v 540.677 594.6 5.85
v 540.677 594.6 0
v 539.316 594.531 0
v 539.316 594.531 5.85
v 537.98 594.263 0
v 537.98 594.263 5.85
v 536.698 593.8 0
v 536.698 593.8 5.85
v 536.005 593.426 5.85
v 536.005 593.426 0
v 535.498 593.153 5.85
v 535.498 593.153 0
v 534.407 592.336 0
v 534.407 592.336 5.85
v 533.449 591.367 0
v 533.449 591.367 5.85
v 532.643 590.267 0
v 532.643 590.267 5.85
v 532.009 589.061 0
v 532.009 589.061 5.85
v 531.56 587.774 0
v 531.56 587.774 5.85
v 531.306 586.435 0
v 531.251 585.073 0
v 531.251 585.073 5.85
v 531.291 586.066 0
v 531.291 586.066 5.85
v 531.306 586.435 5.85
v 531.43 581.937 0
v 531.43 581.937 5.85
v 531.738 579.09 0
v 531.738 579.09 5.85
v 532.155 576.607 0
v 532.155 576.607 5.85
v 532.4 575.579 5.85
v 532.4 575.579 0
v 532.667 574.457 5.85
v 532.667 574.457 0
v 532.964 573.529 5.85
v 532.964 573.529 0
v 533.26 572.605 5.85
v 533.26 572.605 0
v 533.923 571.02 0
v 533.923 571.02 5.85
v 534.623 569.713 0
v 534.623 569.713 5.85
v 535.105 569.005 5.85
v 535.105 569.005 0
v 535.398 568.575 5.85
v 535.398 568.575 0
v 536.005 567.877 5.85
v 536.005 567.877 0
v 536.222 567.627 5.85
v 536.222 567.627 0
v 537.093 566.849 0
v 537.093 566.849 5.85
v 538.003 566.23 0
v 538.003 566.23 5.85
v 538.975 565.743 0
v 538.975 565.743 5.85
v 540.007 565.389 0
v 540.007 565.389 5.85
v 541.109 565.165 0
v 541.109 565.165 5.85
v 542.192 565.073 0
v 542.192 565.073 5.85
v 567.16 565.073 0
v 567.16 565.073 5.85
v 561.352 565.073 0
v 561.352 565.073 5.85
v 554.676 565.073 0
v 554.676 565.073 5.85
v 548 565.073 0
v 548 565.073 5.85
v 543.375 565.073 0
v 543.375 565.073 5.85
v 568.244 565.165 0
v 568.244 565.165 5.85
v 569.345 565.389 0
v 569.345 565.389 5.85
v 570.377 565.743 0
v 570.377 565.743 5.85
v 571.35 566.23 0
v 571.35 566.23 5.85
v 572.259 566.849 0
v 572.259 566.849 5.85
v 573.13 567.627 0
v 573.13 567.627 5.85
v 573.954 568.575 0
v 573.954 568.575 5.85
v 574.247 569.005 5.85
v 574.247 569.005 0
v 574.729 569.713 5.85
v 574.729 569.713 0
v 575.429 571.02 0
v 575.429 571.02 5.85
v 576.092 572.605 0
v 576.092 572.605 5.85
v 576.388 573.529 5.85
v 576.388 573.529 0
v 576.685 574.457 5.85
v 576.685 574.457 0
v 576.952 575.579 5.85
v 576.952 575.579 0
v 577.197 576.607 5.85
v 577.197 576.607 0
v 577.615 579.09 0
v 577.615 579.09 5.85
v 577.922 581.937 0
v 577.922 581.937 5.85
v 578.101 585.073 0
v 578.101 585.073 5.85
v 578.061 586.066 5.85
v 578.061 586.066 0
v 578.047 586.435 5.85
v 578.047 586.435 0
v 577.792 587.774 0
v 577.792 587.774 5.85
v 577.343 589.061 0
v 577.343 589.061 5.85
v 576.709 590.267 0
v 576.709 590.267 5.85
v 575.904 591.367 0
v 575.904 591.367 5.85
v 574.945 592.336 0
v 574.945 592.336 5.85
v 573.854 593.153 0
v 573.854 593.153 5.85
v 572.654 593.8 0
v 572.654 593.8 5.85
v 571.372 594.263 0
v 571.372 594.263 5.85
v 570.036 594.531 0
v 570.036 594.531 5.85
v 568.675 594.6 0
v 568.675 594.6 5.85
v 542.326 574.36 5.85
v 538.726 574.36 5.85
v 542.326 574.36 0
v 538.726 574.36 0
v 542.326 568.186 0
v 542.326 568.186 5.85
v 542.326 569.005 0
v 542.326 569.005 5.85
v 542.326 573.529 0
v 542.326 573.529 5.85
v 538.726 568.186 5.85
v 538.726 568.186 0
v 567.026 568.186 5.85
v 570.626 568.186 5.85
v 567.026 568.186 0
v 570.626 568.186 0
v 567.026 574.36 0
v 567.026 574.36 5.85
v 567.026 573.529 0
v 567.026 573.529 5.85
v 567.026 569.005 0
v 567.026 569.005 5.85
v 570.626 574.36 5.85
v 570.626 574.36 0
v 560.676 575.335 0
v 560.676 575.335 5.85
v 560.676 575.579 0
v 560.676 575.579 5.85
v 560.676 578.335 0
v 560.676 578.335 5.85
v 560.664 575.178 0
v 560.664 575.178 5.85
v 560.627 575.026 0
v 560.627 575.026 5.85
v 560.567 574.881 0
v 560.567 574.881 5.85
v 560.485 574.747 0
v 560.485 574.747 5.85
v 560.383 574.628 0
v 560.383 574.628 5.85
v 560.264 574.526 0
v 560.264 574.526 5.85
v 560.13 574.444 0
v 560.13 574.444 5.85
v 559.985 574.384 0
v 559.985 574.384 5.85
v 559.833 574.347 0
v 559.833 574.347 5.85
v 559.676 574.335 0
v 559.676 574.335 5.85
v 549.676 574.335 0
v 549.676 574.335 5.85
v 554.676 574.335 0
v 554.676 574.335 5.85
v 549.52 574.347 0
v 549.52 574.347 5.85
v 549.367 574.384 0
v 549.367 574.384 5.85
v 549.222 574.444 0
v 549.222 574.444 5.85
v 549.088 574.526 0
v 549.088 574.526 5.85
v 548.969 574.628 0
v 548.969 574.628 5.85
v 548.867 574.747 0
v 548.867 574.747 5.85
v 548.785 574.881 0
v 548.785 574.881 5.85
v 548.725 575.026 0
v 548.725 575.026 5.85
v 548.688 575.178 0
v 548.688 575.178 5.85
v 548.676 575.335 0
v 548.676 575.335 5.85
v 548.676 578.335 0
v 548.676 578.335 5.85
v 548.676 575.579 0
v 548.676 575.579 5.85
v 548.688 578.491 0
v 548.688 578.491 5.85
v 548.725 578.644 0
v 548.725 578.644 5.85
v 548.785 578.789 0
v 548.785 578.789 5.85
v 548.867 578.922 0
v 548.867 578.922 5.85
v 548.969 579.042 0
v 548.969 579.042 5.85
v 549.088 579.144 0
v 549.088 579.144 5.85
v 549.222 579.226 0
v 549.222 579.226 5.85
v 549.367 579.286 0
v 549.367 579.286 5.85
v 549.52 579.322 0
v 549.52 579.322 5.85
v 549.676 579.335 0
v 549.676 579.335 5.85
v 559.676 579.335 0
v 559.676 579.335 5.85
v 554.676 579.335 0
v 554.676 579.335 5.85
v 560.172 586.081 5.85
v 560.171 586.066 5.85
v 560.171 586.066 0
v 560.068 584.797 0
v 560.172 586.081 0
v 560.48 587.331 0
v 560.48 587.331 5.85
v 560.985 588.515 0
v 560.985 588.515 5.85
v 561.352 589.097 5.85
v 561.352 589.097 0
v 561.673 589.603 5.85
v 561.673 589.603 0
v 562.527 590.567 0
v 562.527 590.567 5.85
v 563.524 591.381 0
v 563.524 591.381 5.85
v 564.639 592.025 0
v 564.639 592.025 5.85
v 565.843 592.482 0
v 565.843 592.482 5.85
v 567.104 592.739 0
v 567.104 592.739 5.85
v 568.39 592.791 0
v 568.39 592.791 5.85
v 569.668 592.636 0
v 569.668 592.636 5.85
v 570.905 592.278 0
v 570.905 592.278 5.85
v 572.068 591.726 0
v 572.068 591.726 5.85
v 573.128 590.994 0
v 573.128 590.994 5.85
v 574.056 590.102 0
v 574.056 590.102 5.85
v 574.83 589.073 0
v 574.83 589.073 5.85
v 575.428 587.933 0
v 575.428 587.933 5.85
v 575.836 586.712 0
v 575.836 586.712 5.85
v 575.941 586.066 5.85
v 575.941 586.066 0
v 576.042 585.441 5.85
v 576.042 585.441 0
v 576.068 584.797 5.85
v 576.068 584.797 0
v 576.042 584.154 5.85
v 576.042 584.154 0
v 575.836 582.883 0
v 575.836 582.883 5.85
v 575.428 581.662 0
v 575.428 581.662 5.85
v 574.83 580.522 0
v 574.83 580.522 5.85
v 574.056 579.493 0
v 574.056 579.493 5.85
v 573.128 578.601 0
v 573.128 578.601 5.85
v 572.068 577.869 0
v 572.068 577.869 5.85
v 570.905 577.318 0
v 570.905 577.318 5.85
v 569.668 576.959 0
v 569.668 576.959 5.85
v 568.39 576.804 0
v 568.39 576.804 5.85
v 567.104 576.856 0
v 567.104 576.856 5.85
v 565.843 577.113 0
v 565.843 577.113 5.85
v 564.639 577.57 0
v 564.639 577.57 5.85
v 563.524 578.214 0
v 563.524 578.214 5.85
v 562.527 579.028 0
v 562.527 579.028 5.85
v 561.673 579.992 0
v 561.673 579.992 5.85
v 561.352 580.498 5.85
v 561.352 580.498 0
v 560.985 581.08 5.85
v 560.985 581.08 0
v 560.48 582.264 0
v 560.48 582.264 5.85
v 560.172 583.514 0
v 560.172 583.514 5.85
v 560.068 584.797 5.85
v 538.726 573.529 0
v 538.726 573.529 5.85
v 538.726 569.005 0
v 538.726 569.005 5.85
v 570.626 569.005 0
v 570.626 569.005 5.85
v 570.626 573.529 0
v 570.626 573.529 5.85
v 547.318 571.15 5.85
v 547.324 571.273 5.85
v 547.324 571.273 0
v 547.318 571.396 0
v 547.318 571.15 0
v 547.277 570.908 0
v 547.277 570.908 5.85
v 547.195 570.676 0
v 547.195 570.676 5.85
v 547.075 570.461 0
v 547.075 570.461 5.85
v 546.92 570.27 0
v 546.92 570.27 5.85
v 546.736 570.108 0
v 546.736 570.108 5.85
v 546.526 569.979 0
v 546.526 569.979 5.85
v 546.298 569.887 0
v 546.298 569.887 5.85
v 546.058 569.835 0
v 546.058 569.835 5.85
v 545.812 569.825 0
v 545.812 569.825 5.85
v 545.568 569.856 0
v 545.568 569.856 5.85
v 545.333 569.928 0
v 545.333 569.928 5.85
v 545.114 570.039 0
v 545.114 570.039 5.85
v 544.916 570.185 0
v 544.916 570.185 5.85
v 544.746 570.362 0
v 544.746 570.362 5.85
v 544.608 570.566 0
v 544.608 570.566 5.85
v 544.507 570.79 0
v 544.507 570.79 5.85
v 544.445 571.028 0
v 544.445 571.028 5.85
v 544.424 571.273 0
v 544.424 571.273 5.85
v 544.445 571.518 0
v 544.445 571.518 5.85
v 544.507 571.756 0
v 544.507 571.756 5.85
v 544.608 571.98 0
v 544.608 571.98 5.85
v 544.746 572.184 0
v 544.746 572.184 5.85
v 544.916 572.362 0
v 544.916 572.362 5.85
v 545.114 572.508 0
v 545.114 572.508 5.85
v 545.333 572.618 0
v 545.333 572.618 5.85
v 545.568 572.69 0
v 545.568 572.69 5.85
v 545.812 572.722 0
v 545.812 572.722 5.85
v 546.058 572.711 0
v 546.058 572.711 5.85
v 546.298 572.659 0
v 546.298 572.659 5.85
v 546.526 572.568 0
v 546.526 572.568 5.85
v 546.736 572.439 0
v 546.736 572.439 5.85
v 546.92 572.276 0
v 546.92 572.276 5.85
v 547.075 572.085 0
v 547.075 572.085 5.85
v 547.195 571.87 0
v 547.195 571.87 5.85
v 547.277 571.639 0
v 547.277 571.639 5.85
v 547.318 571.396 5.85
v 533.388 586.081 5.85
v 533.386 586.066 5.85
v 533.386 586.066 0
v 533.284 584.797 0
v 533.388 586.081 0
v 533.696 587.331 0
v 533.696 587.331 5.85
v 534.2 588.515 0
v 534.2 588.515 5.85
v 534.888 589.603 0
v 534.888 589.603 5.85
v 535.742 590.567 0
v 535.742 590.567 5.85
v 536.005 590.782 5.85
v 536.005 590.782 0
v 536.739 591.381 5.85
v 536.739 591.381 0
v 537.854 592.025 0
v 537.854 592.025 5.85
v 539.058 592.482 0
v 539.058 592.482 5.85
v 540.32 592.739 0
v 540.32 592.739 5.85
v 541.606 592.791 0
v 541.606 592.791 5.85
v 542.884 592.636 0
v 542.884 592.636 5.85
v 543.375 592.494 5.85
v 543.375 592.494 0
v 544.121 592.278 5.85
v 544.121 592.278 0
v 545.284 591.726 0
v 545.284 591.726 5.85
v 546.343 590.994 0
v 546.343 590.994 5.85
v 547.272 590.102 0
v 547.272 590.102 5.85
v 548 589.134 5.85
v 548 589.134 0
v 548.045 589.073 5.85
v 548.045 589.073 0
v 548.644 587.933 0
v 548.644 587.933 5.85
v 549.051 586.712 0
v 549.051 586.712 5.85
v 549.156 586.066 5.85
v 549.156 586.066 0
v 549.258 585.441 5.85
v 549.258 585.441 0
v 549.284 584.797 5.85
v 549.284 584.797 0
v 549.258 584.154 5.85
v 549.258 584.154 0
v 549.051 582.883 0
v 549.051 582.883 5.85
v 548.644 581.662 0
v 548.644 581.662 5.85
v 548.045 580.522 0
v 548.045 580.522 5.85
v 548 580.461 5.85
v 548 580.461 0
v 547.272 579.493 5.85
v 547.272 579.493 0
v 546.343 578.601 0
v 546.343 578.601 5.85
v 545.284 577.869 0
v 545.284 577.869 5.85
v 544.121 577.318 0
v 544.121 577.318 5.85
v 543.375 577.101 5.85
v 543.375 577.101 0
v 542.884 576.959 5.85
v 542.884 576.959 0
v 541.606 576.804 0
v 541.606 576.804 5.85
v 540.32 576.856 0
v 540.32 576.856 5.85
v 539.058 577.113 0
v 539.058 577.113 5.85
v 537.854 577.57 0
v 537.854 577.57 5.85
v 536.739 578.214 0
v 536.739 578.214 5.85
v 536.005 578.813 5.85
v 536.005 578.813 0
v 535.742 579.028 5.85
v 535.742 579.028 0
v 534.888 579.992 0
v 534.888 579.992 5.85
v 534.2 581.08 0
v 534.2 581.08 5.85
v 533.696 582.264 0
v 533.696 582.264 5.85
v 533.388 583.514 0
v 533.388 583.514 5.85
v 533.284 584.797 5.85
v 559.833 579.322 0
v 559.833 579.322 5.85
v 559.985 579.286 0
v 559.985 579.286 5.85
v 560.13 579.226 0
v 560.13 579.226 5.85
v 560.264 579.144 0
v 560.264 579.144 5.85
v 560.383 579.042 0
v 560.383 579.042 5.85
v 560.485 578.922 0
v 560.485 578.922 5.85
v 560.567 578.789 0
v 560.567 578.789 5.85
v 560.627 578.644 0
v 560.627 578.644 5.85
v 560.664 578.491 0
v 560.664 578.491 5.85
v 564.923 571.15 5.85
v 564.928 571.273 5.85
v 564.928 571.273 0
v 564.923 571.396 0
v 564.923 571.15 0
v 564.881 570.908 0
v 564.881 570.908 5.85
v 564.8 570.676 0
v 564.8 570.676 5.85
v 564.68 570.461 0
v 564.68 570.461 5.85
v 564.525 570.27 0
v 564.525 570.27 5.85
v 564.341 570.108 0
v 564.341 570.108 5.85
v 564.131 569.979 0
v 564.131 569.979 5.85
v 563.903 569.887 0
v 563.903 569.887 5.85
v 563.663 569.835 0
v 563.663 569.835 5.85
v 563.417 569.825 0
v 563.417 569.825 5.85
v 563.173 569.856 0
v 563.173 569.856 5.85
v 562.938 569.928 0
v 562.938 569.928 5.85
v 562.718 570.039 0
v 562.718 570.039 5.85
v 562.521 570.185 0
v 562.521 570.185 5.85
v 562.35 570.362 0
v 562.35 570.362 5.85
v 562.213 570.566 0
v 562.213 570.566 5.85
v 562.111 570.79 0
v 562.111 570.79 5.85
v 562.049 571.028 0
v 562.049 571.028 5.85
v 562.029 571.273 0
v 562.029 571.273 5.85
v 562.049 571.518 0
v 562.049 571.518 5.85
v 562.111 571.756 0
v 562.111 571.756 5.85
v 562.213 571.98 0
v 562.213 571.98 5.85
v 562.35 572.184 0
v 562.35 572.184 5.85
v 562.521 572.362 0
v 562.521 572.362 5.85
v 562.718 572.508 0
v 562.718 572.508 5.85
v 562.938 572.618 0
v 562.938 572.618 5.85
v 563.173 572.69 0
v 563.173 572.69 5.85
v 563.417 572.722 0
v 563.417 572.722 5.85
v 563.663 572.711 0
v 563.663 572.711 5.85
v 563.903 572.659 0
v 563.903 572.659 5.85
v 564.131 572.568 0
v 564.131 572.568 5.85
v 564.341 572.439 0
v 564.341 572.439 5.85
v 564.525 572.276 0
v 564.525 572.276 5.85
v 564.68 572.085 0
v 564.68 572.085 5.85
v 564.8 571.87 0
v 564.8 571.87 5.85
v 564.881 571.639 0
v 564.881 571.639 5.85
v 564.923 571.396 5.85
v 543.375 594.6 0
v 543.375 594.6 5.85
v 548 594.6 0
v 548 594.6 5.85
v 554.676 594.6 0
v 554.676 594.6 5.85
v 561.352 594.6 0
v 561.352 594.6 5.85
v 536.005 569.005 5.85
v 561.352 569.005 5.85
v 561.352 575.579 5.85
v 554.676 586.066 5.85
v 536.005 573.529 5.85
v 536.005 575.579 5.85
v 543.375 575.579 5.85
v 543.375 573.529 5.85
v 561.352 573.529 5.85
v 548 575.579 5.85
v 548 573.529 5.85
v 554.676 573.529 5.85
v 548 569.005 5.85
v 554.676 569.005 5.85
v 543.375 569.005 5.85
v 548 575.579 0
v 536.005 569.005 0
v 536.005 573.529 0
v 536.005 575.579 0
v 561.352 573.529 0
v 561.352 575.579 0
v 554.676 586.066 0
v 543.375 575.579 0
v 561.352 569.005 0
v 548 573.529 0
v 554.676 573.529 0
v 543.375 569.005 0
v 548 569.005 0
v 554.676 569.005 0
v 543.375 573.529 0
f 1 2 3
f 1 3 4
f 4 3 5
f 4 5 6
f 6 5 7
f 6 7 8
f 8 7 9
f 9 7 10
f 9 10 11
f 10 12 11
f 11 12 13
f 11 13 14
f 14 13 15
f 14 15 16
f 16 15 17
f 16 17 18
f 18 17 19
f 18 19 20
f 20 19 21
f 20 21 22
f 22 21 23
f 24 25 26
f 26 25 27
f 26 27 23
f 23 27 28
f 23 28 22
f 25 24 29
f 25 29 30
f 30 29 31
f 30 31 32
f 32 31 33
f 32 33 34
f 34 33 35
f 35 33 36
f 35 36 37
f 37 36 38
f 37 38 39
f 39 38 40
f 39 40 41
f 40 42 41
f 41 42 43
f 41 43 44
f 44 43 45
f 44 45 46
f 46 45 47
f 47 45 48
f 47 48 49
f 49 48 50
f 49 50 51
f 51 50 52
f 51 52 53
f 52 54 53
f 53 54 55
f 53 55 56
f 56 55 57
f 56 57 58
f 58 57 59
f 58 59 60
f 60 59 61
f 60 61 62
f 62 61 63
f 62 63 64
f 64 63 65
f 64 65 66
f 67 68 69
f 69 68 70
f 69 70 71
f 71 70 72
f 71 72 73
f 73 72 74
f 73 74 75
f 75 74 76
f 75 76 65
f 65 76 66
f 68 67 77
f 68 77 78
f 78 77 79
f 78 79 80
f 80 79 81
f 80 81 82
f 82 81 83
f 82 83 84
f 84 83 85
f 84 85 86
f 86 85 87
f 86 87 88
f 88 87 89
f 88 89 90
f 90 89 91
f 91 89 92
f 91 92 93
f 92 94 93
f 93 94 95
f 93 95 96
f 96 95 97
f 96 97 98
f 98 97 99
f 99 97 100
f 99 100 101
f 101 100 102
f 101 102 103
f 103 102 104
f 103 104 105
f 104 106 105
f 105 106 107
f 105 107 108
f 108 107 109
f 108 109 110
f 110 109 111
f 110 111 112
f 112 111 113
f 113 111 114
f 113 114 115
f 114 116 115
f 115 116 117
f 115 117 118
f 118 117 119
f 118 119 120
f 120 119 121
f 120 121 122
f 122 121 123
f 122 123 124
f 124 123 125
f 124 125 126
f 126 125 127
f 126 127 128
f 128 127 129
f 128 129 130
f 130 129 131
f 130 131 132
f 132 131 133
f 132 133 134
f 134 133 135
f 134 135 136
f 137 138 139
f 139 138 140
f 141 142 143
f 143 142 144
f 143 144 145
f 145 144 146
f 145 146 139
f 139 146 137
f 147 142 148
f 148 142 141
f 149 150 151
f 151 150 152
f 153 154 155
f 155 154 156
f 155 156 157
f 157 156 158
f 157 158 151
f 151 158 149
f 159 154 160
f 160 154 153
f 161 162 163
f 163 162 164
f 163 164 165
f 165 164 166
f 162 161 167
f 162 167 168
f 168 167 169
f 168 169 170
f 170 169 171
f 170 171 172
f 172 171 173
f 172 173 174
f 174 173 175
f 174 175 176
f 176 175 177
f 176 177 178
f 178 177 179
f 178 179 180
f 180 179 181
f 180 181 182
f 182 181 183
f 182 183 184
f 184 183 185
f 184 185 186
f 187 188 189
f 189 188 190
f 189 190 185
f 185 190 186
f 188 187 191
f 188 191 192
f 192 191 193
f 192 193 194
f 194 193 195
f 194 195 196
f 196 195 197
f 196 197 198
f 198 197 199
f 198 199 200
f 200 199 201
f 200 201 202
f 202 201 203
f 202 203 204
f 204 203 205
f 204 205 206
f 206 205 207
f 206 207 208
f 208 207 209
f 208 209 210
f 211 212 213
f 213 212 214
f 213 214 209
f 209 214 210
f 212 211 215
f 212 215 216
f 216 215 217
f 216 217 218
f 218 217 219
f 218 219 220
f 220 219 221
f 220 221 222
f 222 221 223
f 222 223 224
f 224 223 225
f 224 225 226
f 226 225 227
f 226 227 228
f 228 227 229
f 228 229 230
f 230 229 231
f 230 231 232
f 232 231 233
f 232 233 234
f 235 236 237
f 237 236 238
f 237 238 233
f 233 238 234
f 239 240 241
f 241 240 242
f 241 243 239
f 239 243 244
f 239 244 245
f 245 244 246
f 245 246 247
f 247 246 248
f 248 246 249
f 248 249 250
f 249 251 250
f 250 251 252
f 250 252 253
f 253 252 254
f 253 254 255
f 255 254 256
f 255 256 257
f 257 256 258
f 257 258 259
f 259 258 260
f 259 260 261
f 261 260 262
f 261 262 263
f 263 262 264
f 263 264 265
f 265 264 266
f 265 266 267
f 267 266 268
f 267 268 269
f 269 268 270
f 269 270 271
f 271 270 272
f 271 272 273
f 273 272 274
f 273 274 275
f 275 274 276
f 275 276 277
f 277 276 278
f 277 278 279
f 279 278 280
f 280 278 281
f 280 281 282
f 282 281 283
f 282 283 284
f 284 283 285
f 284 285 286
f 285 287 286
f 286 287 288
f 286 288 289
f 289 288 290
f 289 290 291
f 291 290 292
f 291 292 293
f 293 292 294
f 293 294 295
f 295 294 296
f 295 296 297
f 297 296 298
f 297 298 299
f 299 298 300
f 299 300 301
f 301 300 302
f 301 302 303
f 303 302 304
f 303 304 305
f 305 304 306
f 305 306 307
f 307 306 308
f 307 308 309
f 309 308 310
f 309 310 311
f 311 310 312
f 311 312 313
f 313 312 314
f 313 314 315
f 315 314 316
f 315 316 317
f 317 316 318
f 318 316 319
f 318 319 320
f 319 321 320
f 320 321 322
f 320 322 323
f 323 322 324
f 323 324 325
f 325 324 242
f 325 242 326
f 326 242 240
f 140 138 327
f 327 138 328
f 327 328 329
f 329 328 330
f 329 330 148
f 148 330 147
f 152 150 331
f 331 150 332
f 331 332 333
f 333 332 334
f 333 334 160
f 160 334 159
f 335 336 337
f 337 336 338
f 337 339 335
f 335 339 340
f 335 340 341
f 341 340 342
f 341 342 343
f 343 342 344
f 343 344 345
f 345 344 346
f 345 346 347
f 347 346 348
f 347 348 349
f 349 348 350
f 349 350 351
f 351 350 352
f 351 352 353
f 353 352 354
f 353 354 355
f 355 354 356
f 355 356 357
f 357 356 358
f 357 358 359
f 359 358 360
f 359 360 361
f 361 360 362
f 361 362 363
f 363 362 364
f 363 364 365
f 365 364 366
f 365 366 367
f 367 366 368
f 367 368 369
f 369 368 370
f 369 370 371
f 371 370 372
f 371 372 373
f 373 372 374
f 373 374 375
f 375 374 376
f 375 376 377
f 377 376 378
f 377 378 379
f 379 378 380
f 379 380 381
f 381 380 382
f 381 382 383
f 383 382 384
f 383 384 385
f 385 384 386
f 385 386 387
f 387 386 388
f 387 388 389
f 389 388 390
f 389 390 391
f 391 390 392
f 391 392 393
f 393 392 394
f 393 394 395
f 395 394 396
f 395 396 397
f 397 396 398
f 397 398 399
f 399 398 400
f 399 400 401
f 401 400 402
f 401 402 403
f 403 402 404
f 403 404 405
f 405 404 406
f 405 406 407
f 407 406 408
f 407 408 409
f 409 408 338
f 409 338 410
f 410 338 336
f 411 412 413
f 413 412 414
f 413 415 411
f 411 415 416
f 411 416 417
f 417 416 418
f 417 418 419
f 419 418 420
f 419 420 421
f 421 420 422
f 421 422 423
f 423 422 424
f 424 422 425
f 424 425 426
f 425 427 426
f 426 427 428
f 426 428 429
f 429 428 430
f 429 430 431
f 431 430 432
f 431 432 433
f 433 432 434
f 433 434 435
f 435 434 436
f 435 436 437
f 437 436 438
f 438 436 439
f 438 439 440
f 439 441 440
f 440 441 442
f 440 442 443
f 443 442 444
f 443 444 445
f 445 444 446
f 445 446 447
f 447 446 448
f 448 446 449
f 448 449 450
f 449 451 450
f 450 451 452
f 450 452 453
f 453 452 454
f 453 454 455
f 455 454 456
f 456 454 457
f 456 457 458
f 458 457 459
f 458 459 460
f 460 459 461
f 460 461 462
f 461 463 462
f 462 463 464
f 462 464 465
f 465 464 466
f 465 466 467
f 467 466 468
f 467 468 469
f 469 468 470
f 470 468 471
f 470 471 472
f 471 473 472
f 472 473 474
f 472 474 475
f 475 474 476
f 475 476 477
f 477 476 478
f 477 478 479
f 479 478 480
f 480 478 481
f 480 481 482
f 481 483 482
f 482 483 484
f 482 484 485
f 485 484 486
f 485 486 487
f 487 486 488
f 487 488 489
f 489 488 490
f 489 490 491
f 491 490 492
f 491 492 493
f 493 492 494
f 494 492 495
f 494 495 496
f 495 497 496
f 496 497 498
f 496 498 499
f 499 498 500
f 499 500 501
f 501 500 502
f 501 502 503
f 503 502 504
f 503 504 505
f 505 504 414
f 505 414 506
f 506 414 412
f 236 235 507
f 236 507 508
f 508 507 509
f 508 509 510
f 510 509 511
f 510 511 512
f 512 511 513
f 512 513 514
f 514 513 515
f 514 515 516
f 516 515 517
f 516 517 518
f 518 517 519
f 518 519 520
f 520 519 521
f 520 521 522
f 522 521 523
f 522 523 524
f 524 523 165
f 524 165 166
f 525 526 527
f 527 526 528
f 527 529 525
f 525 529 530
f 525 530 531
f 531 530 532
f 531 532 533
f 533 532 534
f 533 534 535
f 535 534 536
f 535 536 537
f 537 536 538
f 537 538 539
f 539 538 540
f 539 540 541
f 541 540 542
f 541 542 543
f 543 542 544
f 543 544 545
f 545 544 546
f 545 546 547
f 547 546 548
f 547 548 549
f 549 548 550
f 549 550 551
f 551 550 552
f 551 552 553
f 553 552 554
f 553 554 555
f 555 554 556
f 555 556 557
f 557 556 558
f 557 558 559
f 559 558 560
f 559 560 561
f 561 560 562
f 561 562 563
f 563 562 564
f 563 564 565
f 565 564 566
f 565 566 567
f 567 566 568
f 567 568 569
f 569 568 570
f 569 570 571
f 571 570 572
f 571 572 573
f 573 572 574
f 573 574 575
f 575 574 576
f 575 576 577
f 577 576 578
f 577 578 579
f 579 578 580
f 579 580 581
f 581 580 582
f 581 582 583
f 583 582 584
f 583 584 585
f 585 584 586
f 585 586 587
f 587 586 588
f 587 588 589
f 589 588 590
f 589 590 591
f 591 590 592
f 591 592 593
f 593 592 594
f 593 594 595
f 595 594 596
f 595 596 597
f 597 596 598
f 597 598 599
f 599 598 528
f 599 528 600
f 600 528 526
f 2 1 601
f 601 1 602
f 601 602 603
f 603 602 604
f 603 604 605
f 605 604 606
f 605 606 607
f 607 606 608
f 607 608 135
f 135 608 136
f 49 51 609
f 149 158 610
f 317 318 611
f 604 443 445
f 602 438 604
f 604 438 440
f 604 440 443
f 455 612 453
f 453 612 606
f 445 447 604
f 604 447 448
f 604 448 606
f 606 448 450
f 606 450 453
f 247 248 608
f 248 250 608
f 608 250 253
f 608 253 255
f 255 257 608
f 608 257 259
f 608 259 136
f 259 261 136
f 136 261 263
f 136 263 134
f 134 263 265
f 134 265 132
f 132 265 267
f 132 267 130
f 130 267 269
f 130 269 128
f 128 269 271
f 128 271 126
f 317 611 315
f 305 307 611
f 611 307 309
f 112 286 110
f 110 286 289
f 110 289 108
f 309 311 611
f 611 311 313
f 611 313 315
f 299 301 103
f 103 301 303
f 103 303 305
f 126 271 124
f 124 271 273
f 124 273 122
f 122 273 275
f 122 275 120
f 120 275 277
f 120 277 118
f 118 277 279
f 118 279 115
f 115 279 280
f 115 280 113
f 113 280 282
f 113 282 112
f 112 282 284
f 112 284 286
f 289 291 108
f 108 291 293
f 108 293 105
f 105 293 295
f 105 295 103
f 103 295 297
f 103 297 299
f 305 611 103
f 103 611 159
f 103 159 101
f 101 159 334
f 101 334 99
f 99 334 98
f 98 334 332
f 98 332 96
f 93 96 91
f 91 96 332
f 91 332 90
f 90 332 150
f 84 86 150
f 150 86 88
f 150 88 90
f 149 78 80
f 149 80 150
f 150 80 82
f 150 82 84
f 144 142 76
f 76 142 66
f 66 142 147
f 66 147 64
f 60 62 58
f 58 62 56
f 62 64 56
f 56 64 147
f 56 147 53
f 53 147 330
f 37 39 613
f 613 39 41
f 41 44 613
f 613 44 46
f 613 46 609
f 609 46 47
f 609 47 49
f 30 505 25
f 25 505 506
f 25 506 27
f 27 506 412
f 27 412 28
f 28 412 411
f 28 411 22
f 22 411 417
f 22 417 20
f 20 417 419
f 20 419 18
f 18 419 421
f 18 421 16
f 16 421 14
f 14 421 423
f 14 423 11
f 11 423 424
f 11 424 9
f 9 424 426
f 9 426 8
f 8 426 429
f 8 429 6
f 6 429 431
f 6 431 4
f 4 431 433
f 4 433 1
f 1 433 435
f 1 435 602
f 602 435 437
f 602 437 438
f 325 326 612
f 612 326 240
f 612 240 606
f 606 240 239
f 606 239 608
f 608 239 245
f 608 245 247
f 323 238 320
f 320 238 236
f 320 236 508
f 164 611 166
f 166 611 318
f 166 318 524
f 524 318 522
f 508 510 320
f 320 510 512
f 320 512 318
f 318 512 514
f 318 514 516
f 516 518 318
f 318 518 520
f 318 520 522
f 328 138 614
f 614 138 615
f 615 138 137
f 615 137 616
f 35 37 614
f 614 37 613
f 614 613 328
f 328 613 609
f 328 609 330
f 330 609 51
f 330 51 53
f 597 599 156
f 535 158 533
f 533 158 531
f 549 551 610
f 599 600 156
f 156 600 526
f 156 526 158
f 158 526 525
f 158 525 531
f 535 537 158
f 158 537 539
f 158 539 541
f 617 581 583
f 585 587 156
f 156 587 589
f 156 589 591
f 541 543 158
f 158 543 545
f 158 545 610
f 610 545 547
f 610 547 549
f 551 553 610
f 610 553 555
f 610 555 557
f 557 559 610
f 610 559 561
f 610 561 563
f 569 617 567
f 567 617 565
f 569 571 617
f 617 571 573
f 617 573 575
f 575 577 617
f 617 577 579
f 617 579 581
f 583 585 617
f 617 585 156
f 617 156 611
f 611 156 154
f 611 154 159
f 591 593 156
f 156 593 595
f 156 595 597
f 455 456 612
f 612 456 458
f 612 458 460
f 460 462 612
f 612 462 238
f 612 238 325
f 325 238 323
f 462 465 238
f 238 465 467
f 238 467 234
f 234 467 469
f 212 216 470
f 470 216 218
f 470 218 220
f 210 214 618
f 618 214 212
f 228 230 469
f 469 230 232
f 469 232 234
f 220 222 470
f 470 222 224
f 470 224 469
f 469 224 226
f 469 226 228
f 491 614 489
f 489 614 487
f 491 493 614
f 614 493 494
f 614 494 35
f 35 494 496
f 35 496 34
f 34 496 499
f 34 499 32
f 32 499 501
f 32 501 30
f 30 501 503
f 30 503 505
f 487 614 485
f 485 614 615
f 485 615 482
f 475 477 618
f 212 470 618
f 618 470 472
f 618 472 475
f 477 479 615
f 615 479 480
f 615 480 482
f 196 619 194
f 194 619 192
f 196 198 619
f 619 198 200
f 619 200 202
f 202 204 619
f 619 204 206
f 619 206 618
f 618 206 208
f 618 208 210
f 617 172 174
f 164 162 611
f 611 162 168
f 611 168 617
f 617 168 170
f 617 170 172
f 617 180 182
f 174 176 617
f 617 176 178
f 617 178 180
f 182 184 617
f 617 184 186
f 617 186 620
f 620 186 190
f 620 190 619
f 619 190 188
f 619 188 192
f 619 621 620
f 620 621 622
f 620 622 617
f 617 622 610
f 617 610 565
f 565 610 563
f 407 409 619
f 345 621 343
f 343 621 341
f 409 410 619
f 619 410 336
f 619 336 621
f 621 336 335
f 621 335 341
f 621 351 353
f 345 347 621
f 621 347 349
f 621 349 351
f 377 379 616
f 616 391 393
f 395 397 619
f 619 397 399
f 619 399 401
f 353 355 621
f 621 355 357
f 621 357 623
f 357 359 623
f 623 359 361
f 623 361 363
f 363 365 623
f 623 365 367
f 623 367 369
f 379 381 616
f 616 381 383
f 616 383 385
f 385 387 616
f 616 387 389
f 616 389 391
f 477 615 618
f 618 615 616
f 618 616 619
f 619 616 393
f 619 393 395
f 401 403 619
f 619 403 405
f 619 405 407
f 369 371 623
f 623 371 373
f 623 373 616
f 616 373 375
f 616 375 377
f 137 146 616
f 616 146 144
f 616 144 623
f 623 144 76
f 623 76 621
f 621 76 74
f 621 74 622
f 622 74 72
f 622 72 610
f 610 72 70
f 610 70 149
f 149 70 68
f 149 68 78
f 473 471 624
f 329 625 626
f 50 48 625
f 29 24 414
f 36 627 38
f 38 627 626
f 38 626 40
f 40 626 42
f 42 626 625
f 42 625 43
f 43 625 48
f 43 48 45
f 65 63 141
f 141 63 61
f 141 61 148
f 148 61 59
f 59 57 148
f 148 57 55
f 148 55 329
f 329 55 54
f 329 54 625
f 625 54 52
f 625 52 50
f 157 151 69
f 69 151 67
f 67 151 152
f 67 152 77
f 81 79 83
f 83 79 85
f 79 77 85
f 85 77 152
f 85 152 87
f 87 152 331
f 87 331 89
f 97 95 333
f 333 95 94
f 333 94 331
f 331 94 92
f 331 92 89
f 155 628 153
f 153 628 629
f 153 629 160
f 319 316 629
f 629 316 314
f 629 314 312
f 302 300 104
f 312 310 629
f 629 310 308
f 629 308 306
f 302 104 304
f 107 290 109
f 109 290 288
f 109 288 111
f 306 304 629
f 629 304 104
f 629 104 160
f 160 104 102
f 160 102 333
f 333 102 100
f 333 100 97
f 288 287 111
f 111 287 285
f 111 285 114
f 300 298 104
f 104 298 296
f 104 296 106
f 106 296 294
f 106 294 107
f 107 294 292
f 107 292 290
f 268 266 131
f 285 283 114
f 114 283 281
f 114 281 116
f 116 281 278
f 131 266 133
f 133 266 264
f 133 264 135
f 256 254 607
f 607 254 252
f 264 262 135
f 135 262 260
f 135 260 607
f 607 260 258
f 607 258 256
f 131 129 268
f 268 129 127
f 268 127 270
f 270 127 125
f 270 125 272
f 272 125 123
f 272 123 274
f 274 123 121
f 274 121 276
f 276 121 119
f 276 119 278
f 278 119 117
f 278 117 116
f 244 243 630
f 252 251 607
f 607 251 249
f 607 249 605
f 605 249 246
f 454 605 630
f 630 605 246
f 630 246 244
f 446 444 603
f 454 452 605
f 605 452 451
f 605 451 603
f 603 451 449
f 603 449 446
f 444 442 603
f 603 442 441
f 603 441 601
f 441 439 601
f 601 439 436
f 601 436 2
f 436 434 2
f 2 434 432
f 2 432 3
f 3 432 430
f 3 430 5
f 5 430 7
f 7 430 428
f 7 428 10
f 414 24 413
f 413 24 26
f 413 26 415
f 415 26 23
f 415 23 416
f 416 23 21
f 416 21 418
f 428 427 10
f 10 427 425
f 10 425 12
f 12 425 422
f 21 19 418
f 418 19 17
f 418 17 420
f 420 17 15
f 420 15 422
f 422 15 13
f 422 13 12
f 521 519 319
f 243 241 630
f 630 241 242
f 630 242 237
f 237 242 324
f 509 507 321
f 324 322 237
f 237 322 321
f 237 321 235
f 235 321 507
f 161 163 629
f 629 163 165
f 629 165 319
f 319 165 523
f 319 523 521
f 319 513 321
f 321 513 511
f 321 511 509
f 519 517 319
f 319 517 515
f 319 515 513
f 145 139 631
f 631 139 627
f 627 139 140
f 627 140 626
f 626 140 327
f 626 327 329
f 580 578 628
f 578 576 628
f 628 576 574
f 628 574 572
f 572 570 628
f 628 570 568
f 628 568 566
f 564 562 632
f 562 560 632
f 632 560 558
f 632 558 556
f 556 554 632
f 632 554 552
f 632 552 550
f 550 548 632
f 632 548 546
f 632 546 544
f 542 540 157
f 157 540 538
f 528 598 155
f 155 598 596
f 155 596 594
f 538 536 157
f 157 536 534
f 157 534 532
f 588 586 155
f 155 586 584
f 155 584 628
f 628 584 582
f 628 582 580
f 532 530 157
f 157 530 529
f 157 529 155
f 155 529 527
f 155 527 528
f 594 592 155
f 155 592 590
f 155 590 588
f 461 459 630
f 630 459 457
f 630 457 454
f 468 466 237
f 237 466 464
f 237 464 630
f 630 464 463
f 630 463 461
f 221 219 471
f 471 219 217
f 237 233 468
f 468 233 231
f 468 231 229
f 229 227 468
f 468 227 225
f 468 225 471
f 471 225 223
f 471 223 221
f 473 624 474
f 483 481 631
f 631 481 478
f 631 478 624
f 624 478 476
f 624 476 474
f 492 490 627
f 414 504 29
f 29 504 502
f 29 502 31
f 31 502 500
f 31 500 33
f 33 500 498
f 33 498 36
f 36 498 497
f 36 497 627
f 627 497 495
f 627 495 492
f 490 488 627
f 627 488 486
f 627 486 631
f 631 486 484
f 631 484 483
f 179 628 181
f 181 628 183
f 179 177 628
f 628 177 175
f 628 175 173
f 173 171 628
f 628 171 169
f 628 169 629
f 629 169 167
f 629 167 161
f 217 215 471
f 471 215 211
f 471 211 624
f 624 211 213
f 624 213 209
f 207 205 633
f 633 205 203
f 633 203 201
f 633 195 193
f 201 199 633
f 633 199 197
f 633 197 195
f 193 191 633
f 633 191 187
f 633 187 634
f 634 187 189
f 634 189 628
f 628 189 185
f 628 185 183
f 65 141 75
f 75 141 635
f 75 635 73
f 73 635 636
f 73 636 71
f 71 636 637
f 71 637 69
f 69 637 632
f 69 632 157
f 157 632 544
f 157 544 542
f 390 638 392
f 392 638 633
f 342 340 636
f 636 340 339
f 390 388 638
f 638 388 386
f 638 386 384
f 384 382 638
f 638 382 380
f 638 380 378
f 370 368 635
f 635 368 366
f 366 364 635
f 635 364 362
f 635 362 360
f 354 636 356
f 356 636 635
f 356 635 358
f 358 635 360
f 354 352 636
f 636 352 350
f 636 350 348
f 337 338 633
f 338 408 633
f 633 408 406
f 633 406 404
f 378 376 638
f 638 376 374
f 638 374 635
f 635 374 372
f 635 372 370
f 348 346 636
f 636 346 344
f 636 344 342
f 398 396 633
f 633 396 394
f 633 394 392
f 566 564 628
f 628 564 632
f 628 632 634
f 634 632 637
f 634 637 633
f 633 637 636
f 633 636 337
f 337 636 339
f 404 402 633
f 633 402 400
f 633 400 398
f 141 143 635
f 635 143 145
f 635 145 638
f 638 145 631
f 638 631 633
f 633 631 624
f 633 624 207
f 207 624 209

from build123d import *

# Parameters (mm, degrees)
MODEL_R             = 1.449812935
MODEL_R_2           = 7.999917631
MODEL_W             = 3.6
MODEL_H             = 6.173462
BOSS_EXTRUDE1_DEPTH = 5.85


with BuildPart() as part:
    # Model → Boss-Extrude1 (new body)
    with BuildSketch(Plane.XY):
        with BuildLine():
            ThreePointArc((531.251426748, 585.073190054), (533.909979714, 591.869304693), (540.677443159, 594.599966993))
            Line((540.677443159, 594.599966993), (568.674763139, 594.599966993))
            ThreePointArc((568.674763139, 594.599966993), (575.442226583, 591.869304693), (578.10077955, 585.073190054))
            add(Edge.make_bspline(
                [(578.10077955, 585.073190054), (577.425296665, 565.393042288), (567.160030567, 565.073190054)],
                knots=[0, 0, 0, 1, 1, 1], degree=2))
            Line((567.160030567, 565.073190054), (542.192175731, 565.073190054))
            add(Edge.make_bspline(
                [(531.251426748, 585.073190054), (531.926909632, 565.393042288), (542.192175731, 565.073190054)],
                knots=[0, 0, 0, 1, 1, 1], degree=2))
        make_face()
        with Locations((563.478415084, 571.273190054)):
            Circle(MODEL_R, mode=Mode.SUBTRACT)
        with Locations((541.283961295, 584.797511369)):
            Circle(MODEL_R_2, mode=Mode.SUBTRACT)
        with Locations((545.873791214, 571.273190054)):
            Circle(MODEL_R, mode=Mode.SUBTRACT)
        with Locations((568.068245003, 584.797511369)):
            Circle(MODEL_R_2, mode=Mode.SUBTRACT)
        with BuildLine():
            Line((560.676103149, 578.334674665), (560.676103149, 575.334674665))
            ThreePointArc((560.676103149, 575.334674665), (560.38320993, 574.627567884), (559.676103149, 574.334674665))
            Line((559.676103149, 574.334674665), (554.676103149, 574.334674665))
            Line((554.676103149, 574.334674665), (549.676103149, 574.334674665))
            ThreePointArc((549.676103149, 574.334674665), (548.968996368, 574.627567884), (548.676103149, 575.334674665))
            Line((548.676103149, 575.334674665), (548.676103149, 578.334674665))
            ThreePointArc((548.676103149, 578.334674665), (548.968996368, 579.041781446), (549.676103149, 579.334674665))
            Line((549.676103149, 579.334674665), (554.676103149, 579.334674665))
            Line((554.676103149, 579.334674665), (559.676103149, 579.334674665))
            ThreePointArc((559.676103149, 579.334674665), (560.38320993, 579.041781446), (560.676103149, 578.334674665))
        make_face(mode=Mode.SUBTRACT)
        with Locations((568.826370712, 571.273190054)):
            Rectangle(MODEL_W, MODEL_H, mode=Mode.SUBTRACT)
        with Locations((540.525835586, 571.273190054)):
            Rectangle(MODEL_W, MODEL_H, mode=Mode.SUBTRACT)
    extrude(amount=BOSS_EXTRUDE1_DEPTH)


solid = part.part
